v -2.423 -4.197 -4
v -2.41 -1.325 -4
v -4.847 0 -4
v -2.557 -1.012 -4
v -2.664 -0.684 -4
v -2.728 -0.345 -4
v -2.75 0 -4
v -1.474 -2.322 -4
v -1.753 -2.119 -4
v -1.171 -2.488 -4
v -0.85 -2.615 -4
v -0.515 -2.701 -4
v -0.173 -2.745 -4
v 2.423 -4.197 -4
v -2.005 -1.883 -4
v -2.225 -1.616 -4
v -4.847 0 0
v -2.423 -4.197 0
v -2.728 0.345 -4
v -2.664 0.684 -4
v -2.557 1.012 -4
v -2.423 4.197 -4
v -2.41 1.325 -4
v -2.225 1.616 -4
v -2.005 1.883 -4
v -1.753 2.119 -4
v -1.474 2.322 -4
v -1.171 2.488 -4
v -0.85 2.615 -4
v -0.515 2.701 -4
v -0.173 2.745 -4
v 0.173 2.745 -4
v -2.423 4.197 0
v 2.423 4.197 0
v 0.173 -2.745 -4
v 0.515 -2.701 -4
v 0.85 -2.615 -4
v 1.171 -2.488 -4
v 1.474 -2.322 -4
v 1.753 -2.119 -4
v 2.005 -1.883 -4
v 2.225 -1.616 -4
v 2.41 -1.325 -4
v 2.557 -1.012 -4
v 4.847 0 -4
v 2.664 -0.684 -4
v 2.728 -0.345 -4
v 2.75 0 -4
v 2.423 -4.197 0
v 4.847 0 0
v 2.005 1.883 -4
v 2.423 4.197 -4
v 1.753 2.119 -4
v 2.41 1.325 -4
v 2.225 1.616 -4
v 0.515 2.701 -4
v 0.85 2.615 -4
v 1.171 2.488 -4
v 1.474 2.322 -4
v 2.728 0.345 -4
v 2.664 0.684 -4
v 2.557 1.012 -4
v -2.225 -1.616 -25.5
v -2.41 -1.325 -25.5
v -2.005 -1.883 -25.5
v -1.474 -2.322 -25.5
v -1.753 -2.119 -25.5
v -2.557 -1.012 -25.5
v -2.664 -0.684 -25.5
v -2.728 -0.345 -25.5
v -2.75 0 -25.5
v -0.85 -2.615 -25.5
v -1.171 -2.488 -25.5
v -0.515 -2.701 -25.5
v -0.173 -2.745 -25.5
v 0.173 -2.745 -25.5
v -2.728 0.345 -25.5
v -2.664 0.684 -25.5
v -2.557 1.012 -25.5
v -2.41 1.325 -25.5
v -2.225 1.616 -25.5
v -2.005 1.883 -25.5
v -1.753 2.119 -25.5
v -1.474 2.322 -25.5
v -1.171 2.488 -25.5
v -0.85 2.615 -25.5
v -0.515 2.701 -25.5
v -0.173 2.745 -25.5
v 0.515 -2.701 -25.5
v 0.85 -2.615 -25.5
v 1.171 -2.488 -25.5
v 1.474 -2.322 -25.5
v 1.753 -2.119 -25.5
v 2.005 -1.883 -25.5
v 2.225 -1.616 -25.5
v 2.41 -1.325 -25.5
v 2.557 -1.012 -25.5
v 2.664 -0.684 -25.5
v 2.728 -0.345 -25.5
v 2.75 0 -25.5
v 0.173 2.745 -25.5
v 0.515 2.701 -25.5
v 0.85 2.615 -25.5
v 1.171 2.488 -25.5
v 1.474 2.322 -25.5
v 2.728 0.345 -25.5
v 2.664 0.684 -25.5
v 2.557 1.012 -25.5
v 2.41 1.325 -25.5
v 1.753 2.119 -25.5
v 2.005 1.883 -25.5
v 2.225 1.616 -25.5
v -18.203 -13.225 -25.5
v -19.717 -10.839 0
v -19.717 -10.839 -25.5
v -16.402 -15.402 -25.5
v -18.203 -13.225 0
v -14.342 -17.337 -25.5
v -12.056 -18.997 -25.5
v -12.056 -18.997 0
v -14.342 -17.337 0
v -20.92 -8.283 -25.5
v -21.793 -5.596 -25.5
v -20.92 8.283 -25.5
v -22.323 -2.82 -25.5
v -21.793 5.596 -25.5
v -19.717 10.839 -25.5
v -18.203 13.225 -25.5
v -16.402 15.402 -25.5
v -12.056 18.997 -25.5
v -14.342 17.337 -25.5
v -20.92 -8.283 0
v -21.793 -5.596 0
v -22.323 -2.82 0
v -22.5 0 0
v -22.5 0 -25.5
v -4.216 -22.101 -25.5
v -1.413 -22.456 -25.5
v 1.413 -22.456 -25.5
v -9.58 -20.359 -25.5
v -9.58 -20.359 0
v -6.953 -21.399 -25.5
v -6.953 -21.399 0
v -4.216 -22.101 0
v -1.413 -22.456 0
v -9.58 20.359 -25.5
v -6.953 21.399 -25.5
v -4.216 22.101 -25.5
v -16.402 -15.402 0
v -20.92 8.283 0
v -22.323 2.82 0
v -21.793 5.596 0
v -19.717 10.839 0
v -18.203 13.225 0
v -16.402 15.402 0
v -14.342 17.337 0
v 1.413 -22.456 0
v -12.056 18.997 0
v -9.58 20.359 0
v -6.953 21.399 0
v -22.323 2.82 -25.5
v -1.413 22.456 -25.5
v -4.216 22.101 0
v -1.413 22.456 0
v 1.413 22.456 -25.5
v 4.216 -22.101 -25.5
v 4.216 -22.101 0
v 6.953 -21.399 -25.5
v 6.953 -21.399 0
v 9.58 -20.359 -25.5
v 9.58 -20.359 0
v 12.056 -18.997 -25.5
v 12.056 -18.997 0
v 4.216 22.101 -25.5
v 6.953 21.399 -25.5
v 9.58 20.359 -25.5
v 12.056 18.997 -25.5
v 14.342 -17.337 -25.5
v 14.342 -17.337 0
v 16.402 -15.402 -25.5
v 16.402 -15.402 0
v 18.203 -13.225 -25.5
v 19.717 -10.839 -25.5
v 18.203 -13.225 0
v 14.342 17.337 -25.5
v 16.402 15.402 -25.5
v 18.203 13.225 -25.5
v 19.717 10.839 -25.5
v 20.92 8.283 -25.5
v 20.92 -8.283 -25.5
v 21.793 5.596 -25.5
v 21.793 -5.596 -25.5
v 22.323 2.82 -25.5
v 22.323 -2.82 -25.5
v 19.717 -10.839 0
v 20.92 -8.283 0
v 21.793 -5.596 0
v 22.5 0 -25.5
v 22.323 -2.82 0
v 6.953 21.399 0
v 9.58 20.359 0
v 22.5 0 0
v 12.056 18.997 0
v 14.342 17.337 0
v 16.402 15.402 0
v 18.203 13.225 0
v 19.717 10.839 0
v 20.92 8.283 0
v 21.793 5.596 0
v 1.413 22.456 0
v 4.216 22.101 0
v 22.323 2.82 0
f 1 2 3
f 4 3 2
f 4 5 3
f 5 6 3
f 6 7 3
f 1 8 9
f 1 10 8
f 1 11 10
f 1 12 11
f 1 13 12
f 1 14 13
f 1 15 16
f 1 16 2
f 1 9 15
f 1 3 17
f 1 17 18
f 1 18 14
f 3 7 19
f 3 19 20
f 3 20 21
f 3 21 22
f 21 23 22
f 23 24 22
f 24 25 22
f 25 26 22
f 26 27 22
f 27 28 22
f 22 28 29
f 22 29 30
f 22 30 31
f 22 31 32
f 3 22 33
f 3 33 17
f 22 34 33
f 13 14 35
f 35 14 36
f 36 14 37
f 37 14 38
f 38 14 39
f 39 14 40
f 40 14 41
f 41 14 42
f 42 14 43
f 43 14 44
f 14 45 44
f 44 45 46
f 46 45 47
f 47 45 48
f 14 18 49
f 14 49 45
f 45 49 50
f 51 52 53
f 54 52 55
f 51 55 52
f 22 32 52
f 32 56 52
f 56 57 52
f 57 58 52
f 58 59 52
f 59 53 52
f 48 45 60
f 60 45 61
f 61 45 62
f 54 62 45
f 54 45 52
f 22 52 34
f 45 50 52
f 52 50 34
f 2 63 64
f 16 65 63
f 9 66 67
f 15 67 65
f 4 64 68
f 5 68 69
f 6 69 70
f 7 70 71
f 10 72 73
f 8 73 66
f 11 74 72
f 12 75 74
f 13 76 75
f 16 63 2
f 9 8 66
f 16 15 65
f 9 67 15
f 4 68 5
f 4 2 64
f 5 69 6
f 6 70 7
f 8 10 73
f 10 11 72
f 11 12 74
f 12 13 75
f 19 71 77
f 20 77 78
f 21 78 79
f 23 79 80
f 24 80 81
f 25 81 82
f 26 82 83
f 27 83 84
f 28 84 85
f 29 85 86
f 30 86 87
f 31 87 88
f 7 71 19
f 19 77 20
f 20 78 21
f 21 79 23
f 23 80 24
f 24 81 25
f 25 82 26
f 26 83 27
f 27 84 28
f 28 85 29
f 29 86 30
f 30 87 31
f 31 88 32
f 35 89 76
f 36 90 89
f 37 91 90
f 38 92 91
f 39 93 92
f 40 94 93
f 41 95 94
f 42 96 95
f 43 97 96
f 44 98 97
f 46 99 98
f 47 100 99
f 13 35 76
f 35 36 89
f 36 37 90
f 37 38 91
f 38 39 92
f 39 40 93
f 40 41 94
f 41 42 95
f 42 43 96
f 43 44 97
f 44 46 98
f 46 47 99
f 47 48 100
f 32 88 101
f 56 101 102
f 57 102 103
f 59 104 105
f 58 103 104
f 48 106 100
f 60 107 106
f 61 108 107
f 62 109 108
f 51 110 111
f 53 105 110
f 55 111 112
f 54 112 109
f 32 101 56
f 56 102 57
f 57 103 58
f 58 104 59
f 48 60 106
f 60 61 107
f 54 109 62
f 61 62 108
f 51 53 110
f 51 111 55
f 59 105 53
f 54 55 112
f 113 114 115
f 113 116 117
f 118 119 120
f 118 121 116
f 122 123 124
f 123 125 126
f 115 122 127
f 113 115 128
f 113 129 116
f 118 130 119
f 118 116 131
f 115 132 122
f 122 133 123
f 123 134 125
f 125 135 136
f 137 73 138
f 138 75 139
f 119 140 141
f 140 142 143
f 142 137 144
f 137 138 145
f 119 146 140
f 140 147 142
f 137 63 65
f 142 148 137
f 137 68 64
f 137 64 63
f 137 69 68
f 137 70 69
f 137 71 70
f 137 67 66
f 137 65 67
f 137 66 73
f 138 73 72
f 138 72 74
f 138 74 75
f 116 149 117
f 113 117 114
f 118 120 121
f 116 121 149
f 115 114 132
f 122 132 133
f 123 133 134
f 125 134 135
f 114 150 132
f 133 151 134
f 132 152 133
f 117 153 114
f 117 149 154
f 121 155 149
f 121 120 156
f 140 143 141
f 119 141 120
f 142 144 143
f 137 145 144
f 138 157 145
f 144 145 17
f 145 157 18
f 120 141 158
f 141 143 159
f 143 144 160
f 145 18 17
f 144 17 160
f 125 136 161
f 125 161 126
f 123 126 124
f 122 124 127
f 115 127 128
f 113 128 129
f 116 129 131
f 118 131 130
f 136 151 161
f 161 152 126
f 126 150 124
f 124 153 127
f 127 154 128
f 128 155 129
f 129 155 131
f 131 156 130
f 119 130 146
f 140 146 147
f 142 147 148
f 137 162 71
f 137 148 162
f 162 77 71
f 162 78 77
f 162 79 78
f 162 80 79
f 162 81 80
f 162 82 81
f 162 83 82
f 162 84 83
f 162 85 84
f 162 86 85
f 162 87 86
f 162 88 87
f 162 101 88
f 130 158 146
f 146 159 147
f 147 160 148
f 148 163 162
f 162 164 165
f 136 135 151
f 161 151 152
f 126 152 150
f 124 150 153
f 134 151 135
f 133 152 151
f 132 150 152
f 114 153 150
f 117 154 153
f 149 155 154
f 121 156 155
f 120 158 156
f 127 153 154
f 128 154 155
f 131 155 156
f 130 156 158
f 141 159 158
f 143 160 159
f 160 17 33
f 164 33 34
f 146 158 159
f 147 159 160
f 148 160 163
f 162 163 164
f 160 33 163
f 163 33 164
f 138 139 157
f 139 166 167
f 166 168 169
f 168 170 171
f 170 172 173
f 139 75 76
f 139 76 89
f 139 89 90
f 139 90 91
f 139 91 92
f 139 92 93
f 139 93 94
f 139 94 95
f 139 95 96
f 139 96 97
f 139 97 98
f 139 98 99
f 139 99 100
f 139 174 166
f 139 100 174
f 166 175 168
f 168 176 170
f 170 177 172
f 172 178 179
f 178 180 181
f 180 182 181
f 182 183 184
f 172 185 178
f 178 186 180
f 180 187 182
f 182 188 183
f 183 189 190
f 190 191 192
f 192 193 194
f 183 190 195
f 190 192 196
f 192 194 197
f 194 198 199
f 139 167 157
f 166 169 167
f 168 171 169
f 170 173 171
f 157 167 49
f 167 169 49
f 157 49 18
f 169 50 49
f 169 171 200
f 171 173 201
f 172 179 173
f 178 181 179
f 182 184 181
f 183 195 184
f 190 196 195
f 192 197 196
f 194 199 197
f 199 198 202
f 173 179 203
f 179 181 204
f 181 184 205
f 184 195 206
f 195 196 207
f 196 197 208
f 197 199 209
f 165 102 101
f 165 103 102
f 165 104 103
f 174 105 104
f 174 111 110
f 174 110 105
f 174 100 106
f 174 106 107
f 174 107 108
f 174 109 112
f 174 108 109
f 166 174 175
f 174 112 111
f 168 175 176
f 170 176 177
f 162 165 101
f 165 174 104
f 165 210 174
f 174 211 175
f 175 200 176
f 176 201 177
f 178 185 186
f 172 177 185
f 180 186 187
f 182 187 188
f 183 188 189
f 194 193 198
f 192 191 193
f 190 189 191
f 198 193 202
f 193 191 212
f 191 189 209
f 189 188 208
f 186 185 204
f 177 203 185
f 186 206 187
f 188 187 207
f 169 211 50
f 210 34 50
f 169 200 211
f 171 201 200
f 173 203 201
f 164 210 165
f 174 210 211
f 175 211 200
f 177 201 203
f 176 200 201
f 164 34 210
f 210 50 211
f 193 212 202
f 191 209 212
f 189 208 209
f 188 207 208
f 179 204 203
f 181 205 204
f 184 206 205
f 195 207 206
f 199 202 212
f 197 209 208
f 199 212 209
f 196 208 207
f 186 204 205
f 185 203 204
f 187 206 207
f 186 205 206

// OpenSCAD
$fn = 50;


difference() {
	union() {
		translate(v = [0, 0, -25.5000000000]) {
			cylinder(h = 25.5000000000, r = 22.5000000000);
		}
	}
	union() {
		translate(v = [0, 0, 0]) {
			rotate(a = [0, 0, 0]) {
				difference() {
					union() {
						translate(v = [0, 0, -4]) {
							linear_extrude(height = 4) {
								polygon(points = [[4.8468000000, 0.0000000000], [2.4234000000, 4.1974519271], [-2.4234000000, 4.1974519271], [-4.8468000000, 0.0000000000], [-2.4234000000, -4.1974519271], [2.4234000000, -4.1974519271]]);
							}
						}
					}
					union();
				}
			}
		}
		#translate(v = [0, 0, -100.0000000000]) {
			cylinder(h = 200, r = 2.7500000000);
		}
	}
}
